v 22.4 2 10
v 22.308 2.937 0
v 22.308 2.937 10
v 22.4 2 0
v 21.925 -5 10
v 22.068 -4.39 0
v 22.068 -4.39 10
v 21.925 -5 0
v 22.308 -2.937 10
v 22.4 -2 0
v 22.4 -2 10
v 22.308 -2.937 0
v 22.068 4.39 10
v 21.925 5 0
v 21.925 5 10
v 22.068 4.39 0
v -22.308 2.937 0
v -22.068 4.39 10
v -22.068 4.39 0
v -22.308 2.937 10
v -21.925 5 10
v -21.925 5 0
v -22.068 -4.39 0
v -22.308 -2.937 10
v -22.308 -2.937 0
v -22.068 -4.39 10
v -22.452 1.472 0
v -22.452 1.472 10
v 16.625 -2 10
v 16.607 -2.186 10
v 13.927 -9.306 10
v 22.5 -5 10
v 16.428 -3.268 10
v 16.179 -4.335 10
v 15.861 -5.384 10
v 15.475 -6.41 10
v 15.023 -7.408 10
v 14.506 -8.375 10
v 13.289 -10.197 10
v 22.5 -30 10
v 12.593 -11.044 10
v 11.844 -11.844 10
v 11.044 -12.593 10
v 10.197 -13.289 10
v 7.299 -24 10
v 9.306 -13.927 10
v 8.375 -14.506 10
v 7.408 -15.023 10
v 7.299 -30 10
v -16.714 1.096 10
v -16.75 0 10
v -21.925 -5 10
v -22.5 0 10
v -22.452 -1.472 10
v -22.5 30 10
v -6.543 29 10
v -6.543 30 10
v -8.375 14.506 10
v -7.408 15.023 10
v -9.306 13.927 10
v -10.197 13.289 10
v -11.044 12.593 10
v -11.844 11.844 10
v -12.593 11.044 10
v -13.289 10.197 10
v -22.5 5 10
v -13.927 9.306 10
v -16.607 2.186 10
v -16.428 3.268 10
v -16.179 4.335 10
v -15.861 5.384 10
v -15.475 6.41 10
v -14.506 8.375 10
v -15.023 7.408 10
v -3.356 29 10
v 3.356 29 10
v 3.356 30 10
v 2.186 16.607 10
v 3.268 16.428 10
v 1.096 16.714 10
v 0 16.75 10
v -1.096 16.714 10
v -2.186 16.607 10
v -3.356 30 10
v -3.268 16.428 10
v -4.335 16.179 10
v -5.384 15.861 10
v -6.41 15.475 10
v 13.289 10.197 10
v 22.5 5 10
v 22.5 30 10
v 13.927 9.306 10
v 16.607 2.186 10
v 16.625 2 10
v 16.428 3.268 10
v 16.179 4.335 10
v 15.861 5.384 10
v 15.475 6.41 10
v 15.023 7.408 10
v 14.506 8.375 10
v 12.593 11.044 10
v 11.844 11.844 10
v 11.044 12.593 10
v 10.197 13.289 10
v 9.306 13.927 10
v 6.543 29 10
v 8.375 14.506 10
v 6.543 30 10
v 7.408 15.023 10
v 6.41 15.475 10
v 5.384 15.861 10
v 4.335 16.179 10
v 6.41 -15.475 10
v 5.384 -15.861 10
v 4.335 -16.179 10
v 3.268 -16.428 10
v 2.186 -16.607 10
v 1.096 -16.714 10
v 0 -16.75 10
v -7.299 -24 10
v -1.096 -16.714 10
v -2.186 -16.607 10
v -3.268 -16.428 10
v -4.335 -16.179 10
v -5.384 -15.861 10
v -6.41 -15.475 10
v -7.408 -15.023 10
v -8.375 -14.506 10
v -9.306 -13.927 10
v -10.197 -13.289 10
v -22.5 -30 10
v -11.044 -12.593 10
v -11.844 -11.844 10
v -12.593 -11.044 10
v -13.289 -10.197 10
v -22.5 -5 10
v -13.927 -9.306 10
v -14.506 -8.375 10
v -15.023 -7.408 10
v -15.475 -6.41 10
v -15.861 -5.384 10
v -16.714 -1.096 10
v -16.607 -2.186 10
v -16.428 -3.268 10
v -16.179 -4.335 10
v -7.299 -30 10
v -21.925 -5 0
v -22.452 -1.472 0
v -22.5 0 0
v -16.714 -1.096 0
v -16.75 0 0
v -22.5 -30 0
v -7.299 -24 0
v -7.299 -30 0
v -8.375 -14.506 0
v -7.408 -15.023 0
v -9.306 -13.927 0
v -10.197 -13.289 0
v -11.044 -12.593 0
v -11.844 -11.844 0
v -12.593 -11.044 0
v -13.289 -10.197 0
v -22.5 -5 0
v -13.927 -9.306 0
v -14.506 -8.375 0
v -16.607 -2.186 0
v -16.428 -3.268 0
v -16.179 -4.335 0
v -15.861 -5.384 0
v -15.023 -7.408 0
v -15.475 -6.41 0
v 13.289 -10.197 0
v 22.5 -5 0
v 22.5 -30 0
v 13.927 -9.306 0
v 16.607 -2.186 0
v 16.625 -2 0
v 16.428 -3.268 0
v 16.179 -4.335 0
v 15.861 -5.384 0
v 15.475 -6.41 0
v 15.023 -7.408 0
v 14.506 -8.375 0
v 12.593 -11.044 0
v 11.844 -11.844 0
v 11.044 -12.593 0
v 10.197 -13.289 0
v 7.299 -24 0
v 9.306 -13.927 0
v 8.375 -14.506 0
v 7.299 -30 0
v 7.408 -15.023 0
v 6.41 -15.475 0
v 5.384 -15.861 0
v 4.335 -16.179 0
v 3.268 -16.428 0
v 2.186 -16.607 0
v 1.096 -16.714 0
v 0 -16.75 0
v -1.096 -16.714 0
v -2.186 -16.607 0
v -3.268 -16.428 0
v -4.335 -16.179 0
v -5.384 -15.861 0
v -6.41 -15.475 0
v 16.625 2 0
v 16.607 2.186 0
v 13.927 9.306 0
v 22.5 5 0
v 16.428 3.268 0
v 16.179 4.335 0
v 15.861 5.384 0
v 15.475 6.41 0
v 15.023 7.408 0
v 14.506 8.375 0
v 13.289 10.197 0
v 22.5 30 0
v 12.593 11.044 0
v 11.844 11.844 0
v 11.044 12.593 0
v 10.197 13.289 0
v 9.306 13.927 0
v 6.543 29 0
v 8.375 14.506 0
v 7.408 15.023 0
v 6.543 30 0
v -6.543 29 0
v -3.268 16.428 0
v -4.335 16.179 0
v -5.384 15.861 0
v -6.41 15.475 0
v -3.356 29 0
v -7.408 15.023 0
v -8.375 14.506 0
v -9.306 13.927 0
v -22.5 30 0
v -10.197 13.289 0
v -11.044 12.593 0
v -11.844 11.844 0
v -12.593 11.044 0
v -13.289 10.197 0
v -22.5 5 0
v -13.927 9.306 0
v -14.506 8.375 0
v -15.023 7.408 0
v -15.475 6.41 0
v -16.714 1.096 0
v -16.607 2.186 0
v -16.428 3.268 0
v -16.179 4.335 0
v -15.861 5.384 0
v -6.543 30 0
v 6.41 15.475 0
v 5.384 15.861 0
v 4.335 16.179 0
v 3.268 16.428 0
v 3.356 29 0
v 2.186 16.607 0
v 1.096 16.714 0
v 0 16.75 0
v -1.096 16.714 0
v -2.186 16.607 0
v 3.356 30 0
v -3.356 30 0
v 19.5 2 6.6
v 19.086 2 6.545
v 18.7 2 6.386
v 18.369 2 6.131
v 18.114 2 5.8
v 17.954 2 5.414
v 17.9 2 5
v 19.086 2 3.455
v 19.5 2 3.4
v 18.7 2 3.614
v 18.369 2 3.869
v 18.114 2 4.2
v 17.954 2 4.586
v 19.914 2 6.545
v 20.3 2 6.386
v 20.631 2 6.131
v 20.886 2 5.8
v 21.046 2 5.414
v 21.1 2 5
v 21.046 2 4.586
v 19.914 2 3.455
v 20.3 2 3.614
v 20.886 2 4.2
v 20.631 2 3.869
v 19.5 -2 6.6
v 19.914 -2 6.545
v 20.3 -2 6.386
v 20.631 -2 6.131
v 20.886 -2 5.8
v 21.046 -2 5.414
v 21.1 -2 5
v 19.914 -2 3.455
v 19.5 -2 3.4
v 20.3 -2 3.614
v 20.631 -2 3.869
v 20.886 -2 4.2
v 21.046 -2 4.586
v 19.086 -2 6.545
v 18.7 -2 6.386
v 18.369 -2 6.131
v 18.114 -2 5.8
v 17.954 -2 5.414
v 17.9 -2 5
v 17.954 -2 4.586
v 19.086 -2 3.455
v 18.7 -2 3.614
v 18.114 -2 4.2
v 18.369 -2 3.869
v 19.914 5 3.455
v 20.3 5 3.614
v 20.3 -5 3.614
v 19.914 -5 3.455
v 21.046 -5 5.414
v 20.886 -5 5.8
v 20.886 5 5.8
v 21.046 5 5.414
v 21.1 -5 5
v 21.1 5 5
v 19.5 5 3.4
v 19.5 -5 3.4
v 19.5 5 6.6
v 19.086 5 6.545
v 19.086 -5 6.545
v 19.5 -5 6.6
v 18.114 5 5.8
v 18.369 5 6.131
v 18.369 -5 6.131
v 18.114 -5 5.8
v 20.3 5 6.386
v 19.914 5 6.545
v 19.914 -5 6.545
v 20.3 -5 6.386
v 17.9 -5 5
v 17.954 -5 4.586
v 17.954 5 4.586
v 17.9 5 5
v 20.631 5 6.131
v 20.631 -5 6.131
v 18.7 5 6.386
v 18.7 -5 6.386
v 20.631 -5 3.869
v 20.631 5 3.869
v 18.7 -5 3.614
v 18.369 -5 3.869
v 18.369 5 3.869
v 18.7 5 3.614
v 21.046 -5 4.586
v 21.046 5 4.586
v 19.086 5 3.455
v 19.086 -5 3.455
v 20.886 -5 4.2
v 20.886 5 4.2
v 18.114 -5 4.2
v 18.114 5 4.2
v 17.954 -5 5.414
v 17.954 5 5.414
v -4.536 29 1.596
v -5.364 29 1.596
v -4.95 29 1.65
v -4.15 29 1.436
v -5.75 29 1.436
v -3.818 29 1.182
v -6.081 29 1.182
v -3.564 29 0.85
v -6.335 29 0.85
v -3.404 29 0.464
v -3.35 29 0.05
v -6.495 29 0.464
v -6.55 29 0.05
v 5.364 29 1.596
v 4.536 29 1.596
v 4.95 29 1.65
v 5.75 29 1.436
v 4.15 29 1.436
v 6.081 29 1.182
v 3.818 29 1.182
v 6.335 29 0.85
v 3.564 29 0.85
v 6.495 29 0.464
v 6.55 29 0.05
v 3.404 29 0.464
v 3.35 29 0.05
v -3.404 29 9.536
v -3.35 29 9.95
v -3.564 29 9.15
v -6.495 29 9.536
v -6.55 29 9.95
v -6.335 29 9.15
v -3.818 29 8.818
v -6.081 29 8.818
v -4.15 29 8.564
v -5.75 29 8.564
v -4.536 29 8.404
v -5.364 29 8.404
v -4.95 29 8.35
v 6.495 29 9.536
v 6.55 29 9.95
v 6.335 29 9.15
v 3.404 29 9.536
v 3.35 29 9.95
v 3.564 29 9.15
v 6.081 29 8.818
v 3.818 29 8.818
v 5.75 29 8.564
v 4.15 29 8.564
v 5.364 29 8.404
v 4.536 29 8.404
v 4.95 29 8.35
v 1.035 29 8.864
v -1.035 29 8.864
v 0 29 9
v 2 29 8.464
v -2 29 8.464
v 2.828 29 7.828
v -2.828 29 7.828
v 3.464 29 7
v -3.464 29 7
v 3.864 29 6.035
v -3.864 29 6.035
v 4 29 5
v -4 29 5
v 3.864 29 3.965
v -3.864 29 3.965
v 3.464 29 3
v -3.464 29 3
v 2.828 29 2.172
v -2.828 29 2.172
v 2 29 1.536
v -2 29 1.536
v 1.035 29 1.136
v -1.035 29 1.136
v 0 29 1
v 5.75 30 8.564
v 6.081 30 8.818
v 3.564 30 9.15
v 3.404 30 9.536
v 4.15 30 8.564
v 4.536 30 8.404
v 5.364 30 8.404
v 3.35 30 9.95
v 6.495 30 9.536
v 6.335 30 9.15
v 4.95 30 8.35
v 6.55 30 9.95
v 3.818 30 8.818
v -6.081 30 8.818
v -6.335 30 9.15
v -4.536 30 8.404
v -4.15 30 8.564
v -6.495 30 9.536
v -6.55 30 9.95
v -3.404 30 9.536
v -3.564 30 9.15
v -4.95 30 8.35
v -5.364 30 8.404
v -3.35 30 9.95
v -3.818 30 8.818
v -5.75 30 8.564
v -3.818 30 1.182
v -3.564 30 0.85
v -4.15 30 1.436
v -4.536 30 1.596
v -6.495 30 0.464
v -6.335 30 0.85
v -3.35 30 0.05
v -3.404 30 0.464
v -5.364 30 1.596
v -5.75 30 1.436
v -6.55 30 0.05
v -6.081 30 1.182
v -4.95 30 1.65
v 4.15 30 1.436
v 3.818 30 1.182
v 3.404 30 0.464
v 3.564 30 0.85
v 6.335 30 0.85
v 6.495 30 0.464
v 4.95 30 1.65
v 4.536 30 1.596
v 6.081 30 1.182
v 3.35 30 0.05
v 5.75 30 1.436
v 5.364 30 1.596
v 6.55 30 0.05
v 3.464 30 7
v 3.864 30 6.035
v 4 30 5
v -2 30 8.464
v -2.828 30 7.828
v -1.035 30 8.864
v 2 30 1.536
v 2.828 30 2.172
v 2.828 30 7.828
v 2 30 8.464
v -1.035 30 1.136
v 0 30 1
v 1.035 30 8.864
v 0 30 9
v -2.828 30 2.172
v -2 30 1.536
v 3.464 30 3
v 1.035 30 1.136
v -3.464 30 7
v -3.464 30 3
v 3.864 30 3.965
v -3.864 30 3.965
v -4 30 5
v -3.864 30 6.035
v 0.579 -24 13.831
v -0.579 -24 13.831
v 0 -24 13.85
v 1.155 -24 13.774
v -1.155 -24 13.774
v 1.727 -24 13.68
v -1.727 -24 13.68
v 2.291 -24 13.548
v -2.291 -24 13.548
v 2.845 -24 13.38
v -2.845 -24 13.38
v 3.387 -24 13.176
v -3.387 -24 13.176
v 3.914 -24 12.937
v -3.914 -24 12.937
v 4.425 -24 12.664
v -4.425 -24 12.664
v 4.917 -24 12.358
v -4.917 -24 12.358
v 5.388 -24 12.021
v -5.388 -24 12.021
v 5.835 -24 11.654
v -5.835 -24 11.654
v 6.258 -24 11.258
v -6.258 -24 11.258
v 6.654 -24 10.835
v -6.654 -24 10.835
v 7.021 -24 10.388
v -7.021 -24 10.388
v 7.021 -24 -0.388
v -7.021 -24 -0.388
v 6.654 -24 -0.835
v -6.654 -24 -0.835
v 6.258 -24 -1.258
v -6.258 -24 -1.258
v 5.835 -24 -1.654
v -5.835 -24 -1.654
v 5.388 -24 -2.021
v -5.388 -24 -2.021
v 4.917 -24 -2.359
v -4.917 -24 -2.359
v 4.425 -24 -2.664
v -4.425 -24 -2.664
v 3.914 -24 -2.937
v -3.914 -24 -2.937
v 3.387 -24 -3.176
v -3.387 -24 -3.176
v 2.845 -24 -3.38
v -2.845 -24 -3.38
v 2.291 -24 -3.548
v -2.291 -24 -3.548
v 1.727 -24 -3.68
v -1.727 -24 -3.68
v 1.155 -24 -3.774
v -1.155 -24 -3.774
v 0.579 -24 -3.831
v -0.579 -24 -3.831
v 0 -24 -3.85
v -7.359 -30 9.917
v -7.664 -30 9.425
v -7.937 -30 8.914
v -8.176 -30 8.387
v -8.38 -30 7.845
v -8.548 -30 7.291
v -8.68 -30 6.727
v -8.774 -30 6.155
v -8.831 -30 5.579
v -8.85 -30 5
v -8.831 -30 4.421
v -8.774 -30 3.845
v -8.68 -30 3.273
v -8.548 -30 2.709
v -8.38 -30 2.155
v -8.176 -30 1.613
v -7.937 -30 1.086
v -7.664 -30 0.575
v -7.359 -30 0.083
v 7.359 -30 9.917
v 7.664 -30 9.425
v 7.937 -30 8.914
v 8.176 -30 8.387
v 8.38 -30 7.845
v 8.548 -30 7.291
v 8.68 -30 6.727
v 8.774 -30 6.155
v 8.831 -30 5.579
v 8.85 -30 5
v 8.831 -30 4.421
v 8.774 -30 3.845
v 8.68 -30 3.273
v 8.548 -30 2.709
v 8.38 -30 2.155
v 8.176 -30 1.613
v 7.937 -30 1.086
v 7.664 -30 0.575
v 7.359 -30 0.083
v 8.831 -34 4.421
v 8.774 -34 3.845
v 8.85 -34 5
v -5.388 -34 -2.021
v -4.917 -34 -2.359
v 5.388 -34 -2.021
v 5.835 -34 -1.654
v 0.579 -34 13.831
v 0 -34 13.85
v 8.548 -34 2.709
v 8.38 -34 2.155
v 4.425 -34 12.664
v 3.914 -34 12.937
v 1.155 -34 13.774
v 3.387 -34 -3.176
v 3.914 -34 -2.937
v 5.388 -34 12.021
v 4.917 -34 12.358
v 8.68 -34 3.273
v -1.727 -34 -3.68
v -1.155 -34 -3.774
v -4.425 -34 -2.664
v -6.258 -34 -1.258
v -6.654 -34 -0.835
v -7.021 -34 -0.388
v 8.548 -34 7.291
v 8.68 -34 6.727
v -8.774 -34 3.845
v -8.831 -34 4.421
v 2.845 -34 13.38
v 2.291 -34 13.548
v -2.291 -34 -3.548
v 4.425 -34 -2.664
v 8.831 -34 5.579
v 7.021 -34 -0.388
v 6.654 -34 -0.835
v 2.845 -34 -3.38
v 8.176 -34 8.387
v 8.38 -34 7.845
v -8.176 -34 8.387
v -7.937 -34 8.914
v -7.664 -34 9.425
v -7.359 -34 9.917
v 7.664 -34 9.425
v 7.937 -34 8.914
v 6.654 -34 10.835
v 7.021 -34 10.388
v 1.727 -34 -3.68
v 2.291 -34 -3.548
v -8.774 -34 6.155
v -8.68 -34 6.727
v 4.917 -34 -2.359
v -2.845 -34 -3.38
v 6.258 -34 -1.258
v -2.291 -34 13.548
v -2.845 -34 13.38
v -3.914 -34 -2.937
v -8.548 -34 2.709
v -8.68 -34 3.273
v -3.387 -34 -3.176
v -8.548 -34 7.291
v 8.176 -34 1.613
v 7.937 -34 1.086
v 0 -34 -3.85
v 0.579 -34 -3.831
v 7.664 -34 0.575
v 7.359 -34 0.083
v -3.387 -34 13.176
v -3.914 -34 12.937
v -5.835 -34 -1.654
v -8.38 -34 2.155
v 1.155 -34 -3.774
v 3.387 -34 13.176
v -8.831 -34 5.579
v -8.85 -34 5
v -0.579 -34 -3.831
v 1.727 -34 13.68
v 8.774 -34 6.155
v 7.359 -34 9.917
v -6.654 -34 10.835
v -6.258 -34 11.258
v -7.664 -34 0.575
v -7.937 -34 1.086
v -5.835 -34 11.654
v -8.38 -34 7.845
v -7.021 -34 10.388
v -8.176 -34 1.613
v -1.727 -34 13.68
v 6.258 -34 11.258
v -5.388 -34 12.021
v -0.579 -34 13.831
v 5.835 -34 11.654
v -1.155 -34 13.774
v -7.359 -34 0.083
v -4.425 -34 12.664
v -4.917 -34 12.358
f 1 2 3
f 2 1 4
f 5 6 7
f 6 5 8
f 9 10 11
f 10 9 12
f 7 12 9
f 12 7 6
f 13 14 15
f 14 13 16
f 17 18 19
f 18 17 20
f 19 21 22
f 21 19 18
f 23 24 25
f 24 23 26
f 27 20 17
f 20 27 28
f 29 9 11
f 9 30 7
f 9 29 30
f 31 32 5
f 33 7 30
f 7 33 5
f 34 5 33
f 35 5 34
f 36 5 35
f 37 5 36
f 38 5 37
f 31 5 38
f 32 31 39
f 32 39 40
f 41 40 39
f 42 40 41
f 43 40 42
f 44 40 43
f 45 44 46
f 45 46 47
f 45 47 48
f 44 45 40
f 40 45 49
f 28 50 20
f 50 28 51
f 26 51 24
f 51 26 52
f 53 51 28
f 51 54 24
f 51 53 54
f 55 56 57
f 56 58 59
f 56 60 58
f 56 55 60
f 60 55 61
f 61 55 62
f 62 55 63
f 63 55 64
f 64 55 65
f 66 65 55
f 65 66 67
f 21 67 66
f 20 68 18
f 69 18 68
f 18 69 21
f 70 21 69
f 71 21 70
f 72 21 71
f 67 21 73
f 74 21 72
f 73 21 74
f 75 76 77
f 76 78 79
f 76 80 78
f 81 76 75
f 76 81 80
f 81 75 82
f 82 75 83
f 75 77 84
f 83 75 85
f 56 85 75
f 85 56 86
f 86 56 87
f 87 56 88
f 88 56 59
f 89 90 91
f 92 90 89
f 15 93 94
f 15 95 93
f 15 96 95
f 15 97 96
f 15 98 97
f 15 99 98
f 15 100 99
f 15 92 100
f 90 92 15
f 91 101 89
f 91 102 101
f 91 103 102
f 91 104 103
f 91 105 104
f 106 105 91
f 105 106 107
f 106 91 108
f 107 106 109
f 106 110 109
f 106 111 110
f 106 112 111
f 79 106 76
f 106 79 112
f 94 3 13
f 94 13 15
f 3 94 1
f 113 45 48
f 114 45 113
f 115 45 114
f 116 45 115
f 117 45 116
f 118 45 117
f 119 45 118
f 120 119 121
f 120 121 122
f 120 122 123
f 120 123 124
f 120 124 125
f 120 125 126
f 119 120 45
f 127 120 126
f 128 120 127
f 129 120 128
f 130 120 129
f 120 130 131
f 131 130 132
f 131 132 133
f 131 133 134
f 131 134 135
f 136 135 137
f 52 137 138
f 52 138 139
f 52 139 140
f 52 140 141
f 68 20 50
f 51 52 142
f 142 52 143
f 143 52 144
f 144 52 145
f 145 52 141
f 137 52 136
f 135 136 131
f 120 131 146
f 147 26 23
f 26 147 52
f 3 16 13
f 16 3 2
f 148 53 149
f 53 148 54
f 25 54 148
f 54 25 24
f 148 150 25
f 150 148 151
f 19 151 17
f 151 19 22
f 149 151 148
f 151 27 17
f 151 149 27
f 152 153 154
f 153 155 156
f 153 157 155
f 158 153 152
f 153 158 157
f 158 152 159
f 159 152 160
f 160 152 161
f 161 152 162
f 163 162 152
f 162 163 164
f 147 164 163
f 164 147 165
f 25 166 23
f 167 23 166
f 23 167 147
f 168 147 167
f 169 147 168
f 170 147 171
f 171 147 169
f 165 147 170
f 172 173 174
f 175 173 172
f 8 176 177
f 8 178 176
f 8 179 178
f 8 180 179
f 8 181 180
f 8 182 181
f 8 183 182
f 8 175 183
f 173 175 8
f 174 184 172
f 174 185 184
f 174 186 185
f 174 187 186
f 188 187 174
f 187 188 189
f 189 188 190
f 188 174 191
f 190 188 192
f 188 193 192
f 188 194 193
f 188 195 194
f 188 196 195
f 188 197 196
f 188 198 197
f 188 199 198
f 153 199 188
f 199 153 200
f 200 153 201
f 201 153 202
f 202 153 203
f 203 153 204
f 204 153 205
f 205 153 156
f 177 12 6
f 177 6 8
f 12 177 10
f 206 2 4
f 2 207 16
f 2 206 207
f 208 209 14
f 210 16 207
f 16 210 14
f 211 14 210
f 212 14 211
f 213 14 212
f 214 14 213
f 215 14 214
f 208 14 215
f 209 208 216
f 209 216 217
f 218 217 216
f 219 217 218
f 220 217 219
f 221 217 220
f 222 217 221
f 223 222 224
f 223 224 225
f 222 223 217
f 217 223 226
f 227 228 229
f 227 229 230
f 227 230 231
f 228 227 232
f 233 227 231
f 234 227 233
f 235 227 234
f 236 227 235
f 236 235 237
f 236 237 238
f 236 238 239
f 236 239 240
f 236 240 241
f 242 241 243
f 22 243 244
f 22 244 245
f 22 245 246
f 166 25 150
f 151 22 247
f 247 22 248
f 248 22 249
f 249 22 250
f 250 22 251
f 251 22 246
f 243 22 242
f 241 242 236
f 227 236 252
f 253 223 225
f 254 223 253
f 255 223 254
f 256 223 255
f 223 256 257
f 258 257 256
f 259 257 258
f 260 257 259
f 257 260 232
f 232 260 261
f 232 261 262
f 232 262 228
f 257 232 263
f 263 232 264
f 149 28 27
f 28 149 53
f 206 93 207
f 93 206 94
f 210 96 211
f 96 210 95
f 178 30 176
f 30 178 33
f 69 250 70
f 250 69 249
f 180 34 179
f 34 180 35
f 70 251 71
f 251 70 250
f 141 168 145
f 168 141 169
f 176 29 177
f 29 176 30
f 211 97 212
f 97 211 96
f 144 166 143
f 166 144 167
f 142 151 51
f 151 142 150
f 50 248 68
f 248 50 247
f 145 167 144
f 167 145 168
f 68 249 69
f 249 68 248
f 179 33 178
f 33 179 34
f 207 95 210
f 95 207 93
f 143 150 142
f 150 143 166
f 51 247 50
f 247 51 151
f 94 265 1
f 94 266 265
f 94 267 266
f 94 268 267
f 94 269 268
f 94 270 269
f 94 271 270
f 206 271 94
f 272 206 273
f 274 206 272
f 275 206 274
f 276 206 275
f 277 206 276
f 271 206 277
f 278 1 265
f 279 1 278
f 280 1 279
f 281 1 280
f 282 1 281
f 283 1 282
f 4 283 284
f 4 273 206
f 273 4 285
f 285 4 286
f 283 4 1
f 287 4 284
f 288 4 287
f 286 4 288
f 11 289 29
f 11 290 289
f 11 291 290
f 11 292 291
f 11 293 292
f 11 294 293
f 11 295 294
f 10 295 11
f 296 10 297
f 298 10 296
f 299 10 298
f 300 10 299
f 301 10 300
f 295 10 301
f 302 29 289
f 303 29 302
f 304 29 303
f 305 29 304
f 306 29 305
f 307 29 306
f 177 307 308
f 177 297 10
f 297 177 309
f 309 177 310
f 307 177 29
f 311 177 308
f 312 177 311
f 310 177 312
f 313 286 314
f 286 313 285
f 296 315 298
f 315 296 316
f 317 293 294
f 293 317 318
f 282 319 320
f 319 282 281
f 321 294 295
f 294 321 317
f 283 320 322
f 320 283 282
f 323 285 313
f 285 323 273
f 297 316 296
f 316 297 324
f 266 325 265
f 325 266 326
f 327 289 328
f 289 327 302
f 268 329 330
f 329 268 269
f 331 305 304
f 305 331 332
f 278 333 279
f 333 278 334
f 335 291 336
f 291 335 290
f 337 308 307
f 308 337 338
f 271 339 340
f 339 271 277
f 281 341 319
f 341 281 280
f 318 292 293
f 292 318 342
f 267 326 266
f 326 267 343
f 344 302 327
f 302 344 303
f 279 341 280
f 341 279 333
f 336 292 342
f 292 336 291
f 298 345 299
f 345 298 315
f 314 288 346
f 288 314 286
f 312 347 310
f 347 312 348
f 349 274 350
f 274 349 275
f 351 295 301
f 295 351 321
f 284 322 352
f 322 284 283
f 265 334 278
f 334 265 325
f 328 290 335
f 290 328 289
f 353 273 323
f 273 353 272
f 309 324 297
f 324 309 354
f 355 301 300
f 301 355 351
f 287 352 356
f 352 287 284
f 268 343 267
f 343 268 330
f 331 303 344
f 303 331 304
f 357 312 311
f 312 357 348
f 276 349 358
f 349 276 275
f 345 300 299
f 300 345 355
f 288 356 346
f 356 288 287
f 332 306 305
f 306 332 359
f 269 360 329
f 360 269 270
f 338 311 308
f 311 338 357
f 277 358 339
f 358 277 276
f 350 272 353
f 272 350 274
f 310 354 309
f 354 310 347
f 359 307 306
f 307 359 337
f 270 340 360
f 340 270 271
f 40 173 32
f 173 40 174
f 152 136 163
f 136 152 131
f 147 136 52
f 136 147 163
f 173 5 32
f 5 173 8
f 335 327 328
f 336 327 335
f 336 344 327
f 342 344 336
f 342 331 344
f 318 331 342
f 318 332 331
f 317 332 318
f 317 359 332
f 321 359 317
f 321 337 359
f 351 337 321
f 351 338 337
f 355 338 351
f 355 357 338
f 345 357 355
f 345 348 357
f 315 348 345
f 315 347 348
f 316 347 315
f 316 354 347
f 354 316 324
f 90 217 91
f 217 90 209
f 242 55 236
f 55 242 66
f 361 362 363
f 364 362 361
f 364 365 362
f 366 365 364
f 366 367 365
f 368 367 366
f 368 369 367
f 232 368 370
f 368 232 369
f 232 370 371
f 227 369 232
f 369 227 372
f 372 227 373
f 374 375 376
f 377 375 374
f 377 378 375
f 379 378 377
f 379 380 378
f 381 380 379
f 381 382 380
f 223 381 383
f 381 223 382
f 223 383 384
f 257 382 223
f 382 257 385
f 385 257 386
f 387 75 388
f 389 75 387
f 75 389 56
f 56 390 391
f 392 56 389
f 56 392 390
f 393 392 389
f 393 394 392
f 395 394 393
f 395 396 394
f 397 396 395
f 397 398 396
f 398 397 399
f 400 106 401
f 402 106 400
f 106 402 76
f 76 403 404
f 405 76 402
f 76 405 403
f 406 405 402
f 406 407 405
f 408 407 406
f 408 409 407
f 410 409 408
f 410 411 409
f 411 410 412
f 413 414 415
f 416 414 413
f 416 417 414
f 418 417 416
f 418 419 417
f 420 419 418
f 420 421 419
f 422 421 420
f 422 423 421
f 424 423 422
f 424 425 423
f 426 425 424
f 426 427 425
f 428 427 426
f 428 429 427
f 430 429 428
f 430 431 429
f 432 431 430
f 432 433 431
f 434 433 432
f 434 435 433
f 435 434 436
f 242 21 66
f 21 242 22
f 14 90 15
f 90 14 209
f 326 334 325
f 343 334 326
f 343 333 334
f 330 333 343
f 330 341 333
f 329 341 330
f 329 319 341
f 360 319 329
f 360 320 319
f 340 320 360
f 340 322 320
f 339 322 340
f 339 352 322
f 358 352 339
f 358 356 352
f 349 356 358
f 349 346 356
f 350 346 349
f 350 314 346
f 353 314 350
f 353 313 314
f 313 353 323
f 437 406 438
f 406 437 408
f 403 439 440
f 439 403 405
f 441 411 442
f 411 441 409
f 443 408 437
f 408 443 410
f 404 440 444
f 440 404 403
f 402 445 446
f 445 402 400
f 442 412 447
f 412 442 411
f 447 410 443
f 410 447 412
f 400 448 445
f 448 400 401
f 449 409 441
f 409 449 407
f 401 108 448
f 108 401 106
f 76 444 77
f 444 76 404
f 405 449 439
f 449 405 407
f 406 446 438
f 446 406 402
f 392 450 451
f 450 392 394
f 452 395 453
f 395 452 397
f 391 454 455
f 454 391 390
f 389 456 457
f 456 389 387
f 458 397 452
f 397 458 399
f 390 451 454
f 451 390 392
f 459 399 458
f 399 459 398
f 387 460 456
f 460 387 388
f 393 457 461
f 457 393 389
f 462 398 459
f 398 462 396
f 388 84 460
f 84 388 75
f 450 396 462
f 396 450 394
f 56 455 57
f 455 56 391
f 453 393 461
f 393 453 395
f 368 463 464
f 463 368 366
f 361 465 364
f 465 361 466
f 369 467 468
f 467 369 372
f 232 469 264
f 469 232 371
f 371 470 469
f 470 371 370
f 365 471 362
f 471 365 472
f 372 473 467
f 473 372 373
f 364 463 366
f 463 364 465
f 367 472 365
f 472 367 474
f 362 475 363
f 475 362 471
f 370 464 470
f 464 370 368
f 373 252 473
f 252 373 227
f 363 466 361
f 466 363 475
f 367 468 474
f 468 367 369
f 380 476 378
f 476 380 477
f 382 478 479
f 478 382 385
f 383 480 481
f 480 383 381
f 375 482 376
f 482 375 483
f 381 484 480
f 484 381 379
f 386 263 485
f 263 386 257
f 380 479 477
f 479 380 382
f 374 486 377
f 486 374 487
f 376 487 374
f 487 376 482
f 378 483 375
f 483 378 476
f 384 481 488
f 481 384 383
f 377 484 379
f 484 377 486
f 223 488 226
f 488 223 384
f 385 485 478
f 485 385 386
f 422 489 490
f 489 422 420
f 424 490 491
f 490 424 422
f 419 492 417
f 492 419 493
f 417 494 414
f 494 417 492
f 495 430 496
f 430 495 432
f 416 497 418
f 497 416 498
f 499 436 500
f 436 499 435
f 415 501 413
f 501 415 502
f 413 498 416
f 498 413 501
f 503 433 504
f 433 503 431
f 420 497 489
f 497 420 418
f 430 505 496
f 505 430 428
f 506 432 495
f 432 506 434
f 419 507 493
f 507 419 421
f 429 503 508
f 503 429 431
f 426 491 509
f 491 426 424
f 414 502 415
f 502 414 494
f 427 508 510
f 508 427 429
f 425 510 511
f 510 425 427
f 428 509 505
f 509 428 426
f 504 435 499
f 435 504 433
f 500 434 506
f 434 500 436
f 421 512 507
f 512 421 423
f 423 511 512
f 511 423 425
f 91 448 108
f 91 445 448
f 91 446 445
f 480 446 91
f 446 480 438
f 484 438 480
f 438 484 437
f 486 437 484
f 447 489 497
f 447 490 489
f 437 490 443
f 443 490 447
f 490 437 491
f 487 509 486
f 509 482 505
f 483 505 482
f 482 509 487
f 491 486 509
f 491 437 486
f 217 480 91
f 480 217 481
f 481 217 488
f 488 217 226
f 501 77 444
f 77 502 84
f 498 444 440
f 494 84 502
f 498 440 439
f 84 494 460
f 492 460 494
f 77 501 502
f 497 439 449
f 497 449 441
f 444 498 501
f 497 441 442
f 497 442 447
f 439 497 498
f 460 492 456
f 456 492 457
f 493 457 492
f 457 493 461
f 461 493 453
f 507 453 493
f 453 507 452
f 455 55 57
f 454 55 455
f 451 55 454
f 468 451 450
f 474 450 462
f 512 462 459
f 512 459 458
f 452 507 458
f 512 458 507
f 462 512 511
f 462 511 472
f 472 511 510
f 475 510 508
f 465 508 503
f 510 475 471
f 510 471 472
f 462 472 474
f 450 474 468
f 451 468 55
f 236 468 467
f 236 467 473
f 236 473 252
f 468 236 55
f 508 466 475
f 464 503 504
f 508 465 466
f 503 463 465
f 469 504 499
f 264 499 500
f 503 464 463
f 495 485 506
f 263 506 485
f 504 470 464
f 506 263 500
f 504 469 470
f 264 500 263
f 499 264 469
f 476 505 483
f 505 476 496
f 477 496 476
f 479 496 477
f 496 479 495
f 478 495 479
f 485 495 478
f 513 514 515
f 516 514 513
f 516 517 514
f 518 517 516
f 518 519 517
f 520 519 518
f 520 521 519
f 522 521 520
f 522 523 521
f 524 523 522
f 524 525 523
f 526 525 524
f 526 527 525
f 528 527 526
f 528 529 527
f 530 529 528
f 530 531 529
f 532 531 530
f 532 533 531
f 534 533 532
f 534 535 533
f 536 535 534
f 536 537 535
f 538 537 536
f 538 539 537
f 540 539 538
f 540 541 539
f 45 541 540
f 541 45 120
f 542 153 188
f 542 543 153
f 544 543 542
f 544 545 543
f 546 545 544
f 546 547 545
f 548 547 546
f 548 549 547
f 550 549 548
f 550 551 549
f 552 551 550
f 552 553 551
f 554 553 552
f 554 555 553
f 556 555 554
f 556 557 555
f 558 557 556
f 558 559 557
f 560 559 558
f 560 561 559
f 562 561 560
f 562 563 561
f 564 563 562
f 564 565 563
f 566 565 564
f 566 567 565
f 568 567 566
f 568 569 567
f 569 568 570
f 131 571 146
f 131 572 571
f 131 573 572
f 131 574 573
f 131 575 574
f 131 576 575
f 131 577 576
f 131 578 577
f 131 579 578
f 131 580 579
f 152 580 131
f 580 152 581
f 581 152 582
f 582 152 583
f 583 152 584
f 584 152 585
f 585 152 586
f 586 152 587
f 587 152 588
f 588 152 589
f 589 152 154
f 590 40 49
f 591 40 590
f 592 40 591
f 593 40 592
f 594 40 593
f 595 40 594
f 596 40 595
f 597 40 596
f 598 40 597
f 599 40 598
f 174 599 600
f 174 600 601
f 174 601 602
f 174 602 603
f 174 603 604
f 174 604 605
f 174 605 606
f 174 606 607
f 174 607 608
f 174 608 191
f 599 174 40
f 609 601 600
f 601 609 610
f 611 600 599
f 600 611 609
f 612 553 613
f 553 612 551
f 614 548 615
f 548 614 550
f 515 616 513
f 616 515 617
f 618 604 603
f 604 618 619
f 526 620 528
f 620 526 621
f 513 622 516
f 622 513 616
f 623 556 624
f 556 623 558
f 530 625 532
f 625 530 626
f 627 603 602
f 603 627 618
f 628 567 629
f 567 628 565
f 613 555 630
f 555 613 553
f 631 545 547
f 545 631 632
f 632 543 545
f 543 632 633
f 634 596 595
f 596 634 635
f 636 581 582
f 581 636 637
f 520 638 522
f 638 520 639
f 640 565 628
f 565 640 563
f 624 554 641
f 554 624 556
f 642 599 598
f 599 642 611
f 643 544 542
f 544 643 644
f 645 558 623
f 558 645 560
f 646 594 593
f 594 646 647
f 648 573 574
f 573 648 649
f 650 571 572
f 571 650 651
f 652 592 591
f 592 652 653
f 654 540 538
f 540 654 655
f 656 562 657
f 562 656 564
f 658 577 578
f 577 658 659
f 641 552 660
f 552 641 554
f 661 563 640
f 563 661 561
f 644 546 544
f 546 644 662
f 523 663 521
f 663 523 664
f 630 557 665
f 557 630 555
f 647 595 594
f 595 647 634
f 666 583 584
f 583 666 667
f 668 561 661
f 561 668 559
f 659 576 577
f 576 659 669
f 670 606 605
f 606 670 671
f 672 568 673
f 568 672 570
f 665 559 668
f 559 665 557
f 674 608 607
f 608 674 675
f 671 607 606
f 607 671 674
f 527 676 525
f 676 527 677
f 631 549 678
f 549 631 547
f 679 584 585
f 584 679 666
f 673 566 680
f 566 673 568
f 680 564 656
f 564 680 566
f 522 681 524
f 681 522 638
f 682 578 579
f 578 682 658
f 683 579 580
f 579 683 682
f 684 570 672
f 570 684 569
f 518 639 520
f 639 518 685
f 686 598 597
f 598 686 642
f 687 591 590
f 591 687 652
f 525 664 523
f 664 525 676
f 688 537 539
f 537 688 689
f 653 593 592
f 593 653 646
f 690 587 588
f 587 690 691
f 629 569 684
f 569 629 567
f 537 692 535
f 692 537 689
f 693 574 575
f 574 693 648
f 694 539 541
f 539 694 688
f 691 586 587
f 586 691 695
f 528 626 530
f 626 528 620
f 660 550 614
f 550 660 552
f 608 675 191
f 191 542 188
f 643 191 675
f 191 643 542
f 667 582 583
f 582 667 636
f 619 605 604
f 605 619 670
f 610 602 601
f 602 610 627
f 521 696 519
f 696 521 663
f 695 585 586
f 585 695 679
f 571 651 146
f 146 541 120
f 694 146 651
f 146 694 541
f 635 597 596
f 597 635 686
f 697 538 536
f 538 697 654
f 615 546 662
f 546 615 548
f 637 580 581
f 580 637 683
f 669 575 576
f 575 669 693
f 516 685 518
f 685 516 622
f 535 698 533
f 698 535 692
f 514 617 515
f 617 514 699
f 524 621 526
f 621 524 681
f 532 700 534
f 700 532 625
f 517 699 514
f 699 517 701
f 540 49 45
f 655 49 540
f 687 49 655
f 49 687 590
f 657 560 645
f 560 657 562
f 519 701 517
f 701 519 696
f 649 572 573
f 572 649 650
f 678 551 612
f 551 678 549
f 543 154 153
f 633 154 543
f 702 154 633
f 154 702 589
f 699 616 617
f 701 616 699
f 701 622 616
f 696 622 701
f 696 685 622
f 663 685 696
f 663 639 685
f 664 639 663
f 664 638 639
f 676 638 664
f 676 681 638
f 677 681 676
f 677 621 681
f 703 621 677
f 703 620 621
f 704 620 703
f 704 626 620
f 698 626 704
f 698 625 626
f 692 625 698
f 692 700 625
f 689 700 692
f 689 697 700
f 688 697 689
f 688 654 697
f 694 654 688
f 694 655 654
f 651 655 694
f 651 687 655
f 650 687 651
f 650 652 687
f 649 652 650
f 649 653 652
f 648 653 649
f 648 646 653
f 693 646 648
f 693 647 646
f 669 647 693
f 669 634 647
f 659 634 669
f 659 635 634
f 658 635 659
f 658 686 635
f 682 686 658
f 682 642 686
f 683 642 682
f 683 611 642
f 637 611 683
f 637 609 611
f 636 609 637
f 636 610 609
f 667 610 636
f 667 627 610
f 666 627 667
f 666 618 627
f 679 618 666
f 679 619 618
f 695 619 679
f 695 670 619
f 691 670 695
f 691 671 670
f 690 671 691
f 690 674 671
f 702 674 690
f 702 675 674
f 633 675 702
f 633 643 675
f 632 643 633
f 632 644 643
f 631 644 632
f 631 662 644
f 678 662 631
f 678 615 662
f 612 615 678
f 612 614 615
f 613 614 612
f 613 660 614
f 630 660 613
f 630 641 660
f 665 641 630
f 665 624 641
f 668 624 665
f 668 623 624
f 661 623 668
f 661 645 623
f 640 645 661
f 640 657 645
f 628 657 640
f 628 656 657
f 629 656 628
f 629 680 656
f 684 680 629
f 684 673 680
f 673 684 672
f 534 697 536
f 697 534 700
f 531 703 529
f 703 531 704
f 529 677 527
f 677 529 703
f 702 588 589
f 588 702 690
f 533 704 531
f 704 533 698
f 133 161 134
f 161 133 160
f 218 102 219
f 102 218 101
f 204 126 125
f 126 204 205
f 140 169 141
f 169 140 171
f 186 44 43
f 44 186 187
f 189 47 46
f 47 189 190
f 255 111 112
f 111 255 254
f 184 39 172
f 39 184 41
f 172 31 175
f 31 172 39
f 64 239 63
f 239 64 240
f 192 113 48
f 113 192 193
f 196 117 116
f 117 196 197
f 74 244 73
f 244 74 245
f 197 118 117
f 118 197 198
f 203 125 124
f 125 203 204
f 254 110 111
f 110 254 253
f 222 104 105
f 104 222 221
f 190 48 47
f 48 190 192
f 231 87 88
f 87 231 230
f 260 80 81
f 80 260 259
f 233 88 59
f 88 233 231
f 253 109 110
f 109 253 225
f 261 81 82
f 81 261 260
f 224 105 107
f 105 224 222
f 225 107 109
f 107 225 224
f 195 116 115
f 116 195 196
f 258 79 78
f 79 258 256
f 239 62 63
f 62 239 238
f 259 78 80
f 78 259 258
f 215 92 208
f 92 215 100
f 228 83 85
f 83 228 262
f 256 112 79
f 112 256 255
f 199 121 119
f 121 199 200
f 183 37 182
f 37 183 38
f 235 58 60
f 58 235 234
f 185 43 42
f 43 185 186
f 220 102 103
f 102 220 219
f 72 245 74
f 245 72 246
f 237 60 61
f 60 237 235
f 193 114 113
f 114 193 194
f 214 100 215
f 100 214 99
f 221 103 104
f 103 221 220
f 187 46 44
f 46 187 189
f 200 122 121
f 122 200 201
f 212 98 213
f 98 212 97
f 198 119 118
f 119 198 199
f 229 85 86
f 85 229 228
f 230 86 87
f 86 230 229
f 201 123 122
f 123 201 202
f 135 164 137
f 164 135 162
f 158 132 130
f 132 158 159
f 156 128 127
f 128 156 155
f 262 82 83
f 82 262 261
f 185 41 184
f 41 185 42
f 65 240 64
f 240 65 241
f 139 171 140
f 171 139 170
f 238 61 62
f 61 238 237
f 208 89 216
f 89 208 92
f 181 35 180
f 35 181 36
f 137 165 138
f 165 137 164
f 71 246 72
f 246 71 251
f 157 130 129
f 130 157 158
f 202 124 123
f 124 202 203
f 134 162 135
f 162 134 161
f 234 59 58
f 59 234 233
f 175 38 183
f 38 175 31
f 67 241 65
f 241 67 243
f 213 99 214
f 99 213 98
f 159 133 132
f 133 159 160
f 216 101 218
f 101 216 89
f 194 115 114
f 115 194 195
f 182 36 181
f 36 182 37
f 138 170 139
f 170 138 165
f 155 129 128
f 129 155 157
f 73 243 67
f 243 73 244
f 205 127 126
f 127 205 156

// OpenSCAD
// file: config.scad
// SportCam — shared parametric dimensions (mm).
// Every part file includes this; tweak here, re-render, everything stays consistent.

$fn = 96;
clr = 0.25;                    // general printed-fit clearance per side

// ---- pan stage -------------------------------------------------------------
base_d        = 150;           // base housing outer diameter
base_h        = 62;            // base housing height
base_wall     = 3;

ls_size       = 76.2;          // 3" lazy-susan square plate
ls_bolt       = 66;            // bolt spacing (square)
ls_hole_d     = 5;             // M5-ish mounting holes
ls_thick      = 8;             // bearing stack height

sr_body_d     = 22.5;          // slip ring body (Adafruit 736 class)
sr_flange_d   = 44.5;          // stationary flange diameter
sr_flange_t   = 2.5;
sr_hole_space = 33;            // two flange screw holes, M3
sr_wire_d     = 14;            // wire bundle pass-through

nema_face     = 42.3;          // NEMA17
nema_bolt     = 31;            // M3 square pattern
nema_boss_d   = 22.5;
nema_shaft_d  = 5;

// ---- belt drive ------------------------------------------------------------
gt2_pitch       = 2.0;
ring_teeth      = 120;         // printed ring pulley (6:1 with 20T motor pulley)
ring_pitch_r    = ring_teeth * gt2_pitch / (2 * PI);   // ≈ 38.2
ring_id         = 60;          // clears the 44.5 slip-ring flange with margin
pulley_h        = 8;           // belt is 6 mm wide
flange_lip      = 1.5;

// ---- rotating platform -----------------------------------------------------
plat_d        = 160;
plat_t        = 5;
plat_bolt_circle = 70;         // M3 bosses meeting the lazy-susan top plate

pi_l = 85; pi_w = 56;          // Raspberry Pi 5
pi_hole_dx = 58; pi_hole_dy = 49;
pi_hole_off = 3.5;             // hole inset from board corner
pi_standoff_h = 6;

// ---- tilt ------------------------------------------------------------------
servo_l = 40.5; servo_w = 20.2; servo_h = 38.5;   // DS3225 body
servo_tab_l = 54.5;            // over mounting tabs
servo_hole_dx = 49.5; servo_hole_dy = 10;         // 4 × M4 tab holes
servo_axis_off = 9.9;          // spline axis from body front face

tilt_bearing_od = 18; tilt_bearing_w = 4;         // 6701ZZ
tilt_shaft_d = 12;
tower_h = 90;                  // tilt-axis height above platform
tower_w = 30; tower_t = 12;
tower_gap = 90;                // clear width between the two uprights

// ---- camera cradle ---------------------------------------------------------
lens_d = 33;                   // Arducam zoom-lens barrel — MEASURE YOURS
cam_board_w = 25;              // IMX219 board width behind lens
horn_d = 21;                   // DS3225 round metal horn
horn_screw_circle = 14;        // 4 × M3 on the horn
cradle_w = 60;

// ---- UWB anchor arm --------------------------------------------------------
arm_len = 200;                 // baseline = 2 × arm_len = 400
arm_w = 18; arm_t = 8;
uwb_l = 55; uwb_w = 30;        // ESP32-UWB board
uwb_hole_dx = 49; uwb_hole_dy = 24;               // corner holes — MEASURE YOURS

// ---- wearable pod ----------------------------------------------------------
pod_inner_l = 58; pod_inner_w = 33; pod_inner_h = 22;  // board + LiPo + TP4056
pod_wall = 2.0;
strap_w = 26;                  // elastic armband width
// main file
// Camera cradle: clamps the Arducam zoom-lens barrel; one side screws to
// the DS3225's round metal horn, the other carries a 12 mm stub shaft that
// rides in the 6701ZZ bearing. Lens axis passes through the tilt axis.
include <config.scad>

clamp_t = 10;                  // clamp ring thickness along lens axis
back_t = 6;

module clamp_ring() {
    difference() {
        cylinder(d = lens_d + 12, h = clamp_t);
        translate([0, 0, -1]) cylinder(d = lens_d + 2 * clr, h = clamp_t + 2);
        // clamp slit + M3 pinch bolt
        translate([0, -2, -1]) cube([lens_d, 4, clamp_t + 2]);
        translate([lens_d / 2 + 3, 0, clamp_t / 2]) rotate([90, 0, 0])
            cylinder(d = 3.2, h = 30, center = true, $fn = 24);
    }
}

module side_plates() {
    for (s = [-1, 1])
        translate([0, s * (cradle_w / 2 - back_t / 2), clamp_t / 2])
            difference() {
                cube([lens_d + 12, back_t, clamp_t], center = true);
                if (s == 1)  // horn side: 4 × M3 on the horn circle + centre relief
                    rotate([90, 0, 0]) {
                        cylinder(d = 8, h = back_t + 2, center = true, $fn = 24);
                        for (a = [0:90:270])
                            rotate([0, 0, a + 45])
                                translate([horn_screw_circle / 2, 0, 0])
                                    cylinder(d = 3.2, h = back_t + 2, center = true, $fn = 24);
                    }
            }
    // bearing-side stub shaft
    translate([0, -cradle_w / 2 - tilt_bearing_w, clamp_t / 2]) rotate([-90, 0, 0])
        cylinder(d = tilt_bearing_od - 2 * 0.15, h = tilt_bearing_w + back_t);
}

module camera_cradle() {
    difference() {
        union() {
            clamp_ring();
            // bridge between clamp and side plates
            for (s = [-1, 1])
                translate([0, s * (cradle_w / 4 + 2), clamp_t / 2])
                    cube([lens_d + 12, cradle_w / 2 - back_t, clamp_t], center = true);
            side_plates();
        }
        // lens bore cut through everything (bridges included)
        translate([0, 0, -1]) cylinder(d = lens_d + 2 * clr, h = clamp_t + 2);
        // re-open the clamp slit
        translate([0, -2, -1]) cube([lens_d, 4, clamp_t + 2]);
    }
}

camera_cradle();
